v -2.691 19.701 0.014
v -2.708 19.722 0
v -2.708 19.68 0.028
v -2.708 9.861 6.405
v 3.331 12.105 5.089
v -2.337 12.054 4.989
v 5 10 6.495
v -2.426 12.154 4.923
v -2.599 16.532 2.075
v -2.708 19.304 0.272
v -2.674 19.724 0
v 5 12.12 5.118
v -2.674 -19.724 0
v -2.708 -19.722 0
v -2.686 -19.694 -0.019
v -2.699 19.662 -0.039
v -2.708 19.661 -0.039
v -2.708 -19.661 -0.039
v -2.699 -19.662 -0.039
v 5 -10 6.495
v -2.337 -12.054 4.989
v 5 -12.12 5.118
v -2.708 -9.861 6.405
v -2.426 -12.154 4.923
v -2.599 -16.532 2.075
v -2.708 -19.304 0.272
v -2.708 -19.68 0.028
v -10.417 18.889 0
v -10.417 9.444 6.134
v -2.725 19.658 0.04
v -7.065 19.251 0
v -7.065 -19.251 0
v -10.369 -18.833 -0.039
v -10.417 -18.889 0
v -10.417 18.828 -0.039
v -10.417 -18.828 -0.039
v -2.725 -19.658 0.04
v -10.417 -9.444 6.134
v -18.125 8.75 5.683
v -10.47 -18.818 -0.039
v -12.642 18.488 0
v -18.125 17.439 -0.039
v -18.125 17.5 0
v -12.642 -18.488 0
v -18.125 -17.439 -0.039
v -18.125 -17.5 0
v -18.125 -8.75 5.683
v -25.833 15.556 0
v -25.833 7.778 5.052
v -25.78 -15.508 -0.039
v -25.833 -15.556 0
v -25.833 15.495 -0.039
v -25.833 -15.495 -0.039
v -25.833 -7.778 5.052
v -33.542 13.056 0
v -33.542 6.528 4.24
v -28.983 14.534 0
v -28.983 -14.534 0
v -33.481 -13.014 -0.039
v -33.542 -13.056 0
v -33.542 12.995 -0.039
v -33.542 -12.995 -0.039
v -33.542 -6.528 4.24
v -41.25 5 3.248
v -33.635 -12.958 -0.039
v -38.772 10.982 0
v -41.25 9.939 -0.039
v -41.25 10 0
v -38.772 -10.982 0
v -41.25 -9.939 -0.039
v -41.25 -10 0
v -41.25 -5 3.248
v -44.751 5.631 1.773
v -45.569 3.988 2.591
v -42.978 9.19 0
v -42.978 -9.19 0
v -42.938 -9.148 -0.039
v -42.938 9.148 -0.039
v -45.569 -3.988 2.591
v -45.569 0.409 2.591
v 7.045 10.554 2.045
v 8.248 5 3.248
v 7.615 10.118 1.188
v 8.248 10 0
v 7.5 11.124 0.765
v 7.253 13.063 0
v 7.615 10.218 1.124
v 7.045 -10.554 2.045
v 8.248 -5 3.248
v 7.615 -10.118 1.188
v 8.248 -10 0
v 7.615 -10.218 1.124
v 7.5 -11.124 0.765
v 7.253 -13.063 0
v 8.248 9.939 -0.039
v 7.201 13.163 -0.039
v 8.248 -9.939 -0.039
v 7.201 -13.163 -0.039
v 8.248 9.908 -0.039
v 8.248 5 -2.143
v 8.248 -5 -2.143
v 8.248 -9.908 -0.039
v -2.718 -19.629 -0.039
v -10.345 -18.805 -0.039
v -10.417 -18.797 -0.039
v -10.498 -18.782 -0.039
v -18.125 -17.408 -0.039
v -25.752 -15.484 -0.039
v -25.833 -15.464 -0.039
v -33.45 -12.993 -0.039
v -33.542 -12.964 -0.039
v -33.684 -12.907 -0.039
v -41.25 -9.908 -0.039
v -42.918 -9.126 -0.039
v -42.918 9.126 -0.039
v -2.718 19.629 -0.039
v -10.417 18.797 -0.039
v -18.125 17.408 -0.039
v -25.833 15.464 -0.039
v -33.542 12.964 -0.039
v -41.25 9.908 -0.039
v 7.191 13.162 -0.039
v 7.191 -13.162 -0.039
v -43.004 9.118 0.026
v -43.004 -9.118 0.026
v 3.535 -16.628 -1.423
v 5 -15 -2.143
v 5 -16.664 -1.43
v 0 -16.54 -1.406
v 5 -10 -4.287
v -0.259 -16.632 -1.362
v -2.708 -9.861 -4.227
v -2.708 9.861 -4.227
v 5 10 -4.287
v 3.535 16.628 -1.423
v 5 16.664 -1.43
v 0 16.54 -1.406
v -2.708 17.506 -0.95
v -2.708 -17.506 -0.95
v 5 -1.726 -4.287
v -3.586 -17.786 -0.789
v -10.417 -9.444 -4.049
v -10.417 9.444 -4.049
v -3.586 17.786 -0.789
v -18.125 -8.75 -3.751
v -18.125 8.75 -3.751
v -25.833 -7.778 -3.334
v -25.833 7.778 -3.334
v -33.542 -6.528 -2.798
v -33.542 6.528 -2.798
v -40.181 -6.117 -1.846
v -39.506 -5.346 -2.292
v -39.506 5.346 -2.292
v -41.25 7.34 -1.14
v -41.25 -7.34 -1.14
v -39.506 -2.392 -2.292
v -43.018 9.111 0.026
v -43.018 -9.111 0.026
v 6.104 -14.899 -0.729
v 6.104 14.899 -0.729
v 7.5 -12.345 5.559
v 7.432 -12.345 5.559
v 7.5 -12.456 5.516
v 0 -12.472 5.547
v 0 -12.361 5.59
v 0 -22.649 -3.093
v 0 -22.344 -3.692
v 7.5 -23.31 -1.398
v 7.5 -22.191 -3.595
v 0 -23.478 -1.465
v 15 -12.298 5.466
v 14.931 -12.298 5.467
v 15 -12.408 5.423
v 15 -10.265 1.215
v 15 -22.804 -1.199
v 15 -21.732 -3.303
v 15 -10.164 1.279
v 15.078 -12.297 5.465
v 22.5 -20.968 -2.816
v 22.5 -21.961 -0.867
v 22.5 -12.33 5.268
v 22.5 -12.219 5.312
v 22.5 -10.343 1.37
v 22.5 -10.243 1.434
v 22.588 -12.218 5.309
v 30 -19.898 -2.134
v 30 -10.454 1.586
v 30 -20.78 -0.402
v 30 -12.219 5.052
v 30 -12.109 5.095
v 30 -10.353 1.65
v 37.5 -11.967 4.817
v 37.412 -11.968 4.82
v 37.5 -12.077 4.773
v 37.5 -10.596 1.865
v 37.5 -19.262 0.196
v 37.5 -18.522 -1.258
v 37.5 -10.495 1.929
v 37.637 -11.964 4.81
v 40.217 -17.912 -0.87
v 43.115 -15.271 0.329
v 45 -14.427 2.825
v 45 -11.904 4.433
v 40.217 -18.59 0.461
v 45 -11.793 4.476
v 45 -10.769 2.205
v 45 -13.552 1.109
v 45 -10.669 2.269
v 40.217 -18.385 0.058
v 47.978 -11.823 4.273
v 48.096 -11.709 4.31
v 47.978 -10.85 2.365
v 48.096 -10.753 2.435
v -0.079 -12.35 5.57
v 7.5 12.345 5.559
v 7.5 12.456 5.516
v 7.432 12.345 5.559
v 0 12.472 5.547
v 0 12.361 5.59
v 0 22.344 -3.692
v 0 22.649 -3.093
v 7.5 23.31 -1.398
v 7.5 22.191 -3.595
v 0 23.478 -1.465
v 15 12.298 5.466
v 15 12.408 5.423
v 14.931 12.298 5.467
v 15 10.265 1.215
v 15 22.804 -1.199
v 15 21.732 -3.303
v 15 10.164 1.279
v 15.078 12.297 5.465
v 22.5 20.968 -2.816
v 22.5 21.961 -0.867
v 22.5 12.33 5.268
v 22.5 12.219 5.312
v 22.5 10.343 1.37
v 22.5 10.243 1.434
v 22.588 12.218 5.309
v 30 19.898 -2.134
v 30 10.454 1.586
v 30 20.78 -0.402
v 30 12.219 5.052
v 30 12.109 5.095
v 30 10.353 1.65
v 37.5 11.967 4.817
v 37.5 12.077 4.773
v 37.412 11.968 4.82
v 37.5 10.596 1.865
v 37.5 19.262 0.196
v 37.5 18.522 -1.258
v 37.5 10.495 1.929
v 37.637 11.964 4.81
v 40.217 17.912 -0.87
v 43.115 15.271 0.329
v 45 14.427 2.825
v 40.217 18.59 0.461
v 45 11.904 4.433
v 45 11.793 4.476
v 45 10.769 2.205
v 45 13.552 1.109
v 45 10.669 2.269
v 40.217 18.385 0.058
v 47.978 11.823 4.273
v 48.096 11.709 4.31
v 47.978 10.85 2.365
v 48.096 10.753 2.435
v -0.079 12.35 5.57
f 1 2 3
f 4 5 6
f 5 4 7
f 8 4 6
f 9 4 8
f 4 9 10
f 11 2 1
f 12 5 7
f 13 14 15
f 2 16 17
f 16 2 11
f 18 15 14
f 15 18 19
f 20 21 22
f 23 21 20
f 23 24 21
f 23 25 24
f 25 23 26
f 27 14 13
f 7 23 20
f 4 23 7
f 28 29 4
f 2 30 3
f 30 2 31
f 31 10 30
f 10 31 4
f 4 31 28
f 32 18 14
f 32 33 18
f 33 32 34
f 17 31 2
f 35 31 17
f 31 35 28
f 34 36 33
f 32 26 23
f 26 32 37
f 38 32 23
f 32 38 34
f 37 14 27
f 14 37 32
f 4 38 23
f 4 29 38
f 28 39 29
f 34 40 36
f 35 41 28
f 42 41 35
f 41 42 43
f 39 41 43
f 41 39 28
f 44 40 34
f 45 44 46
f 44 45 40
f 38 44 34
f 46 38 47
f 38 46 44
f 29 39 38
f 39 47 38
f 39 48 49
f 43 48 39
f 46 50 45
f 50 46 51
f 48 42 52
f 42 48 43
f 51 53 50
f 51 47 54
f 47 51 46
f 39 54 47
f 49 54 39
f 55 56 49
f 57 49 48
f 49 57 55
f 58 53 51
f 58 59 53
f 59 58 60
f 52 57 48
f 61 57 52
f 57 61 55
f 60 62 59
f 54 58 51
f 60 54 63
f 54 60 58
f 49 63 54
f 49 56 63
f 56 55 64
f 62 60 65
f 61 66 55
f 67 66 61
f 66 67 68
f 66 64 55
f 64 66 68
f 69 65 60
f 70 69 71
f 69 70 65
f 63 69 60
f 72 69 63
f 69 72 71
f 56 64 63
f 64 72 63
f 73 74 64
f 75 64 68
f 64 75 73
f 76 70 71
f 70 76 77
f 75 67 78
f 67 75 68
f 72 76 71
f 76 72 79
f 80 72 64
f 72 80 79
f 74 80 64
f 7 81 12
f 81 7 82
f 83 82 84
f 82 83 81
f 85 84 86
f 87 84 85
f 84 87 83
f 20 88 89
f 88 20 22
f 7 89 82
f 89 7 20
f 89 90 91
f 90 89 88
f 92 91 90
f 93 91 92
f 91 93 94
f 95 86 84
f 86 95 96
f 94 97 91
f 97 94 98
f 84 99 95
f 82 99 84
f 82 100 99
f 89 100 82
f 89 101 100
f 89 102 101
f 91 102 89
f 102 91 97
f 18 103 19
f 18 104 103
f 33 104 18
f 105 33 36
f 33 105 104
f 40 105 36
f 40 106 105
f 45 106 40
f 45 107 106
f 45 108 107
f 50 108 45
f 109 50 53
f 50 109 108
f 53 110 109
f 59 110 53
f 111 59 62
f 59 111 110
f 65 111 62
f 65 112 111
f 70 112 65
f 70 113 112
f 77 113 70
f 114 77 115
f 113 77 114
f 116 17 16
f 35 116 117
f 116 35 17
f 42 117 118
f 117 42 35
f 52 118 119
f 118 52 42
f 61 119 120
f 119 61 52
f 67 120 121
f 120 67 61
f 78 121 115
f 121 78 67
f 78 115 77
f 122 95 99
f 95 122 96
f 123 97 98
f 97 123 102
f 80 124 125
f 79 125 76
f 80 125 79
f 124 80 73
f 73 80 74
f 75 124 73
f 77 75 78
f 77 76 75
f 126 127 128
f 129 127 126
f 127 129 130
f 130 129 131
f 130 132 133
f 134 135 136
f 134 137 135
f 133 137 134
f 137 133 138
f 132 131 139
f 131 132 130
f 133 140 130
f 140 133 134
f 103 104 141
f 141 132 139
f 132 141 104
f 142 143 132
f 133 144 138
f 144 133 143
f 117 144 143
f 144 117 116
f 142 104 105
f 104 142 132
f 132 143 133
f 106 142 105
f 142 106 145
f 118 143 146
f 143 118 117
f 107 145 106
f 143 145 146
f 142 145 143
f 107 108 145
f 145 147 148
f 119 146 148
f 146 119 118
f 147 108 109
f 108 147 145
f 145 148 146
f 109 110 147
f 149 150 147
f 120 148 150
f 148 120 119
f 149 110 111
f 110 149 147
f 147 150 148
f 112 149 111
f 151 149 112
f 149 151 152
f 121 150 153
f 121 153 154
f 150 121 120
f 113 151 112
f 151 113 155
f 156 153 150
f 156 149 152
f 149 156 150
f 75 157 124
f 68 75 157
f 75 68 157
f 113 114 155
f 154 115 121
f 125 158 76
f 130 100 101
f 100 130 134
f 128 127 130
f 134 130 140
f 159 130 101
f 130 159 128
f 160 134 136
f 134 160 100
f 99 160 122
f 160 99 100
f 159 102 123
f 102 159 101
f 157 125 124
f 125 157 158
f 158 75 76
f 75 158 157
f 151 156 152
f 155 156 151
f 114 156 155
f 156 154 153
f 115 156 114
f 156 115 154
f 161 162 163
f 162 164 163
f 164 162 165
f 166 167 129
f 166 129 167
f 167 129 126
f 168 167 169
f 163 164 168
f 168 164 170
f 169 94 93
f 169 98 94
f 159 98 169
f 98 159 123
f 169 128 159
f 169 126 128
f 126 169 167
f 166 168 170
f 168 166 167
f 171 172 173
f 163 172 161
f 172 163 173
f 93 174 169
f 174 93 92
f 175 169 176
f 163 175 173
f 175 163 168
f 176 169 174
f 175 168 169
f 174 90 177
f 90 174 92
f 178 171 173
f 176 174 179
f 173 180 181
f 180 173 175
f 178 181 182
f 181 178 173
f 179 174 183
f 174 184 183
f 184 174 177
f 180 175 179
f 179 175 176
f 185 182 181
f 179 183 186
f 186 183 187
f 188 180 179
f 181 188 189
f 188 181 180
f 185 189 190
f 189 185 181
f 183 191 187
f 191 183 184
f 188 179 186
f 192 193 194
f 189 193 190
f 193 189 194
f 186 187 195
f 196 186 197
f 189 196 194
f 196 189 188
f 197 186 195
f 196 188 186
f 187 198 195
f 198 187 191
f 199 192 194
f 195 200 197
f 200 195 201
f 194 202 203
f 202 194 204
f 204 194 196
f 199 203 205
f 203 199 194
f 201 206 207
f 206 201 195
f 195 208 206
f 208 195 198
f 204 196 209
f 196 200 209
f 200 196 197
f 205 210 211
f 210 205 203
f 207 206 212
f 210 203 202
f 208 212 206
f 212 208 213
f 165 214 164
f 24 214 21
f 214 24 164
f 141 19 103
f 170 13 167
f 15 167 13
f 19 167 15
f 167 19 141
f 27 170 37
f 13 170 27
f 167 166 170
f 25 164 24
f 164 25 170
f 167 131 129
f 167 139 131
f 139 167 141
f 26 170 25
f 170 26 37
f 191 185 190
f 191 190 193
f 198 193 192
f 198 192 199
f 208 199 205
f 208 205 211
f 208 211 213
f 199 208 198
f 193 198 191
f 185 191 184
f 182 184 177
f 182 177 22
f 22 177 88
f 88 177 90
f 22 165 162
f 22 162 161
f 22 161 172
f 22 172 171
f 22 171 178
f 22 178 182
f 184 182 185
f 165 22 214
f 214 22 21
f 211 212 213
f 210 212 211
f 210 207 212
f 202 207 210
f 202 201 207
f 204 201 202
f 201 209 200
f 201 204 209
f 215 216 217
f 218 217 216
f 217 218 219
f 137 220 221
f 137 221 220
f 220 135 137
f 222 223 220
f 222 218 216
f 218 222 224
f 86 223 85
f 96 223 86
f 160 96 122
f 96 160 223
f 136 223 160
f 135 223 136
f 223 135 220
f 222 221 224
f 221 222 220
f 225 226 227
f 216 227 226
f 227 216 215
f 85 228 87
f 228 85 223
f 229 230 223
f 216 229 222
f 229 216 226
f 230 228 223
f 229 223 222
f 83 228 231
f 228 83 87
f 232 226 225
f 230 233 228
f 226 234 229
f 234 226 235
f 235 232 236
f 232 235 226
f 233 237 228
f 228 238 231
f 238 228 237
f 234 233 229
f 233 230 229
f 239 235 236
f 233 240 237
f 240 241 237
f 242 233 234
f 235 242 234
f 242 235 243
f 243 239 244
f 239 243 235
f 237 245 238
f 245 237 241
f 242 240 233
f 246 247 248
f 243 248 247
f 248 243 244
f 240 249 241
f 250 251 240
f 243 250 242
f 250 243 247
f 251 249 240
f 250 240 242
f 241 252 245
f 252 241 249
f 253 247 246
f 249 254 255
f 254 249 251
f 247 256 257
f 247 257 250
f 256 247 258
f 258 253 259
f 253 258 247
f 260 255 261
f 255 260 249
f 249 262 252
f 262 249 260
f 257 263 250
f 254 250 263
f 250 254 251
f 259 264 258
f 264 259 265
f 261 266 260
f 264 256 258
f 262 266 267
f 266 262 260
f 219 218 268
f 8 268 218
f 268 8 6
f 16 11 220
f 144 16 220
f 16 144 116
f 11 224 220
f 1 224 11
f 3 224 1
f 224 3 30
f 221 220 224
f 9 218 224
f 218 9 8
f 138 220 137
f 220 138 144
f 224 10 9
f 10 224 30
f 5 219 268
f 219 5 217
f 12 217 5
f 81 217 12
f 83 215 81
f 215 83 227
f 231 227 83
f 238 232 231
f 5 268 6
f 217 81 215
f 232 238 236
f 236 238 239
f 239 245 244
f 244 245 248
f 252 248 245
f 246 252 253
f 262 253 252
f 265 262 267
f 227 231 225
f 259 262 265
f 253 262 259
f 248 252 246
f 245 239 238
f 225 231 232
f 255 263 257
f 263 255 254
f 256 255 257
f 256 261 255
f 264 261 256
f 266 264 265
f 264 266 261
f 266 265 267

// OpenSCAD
// file: util.scad
fn1 = 32;
fn2 = 16;

module util_half_sphere(radius, fn=fn1) {
    difference() {
        sphere(radius, $fn=fn);
        translate([0,0,-(radius+radius/19)])
            cube(2*radius+radius/10, center=true);
    }
}

function gcd(a,b) = a == b ? a : a > b ? gcd(a-b, b) : gcd(a, b-a);

module util_saucer(length, width, height, fn=fn1) {
    rad = gcd(length,gcd(width,height));
    //rad = 10;
    scale([length/(2*rad), width/(2*rad), height/rad])
        util_half_sphere(rad, fn);
}

module util_half_cylinder(length, radius, inner_fn=fn2, outer_fn=fn1) {
    maxval = max(length, 2*radius);
    intersection() {
        difference() {
            rotate([0,90,0])
                translate([0,0,-(length/2 + length/20)])
                    cylinder(length+length/10, radius, radius, $fn=inner_fn);
            
            translate([0,0,(maxval/2 + maxval/19)])
                cube(maxval+maxval/10, center=true);
        }
        
        translate([0,0,-(radius+radius/20)])
            cylinder(radius + radius/10, length/2, length/2, $fn=outer_fn);
    }
}

module util_body(length, width, height, upper_height, fn=fn1) {
    rad = gcd(length, gcd(width, upper_height));
    
    scale(.995) scale([length/(2*rad), width/(2*rad), 1])
        util_half_cylinder(2*rad, height, outer_fn=fn);
}

module util_graded_cylinder(height, radius_start, radius_end, grades=1, fn=fn1) {
    height_grade = height / grades;
    radius_grade = (radius_start - radius_end) / (grades * grades);
    for (i = [0 : 1 : grades]) {
        translate([0,0,i*height_grade])
            cylinder(height_grade, 
                     radius_start - i*radius_grade * i,
                     radius_start - (i+1) * radius_grade * (i+1),
                     $fn = fn);
    }
}

module util_nacelle(length, width, height, curved=false, up=true, front_bulge=false) {
    rad = min(width, height/2);
    grads = curved ? 6 : 1;
    scale_factor = front_bulge ? 1.1 : 1;
    direction = up ? -1 : 1;
    difference() {
        scale([1, width/ (2*rad), height/rad])
            difference() {
                union() {
                    rotate([0,-90,0])
                        rotate(30)
                            util_graded_cylinder(length-rad, rad, rad/2, grads, 6);
                    scale(scale_factor) 
                        rotate([0,90,0]) rotate(90) sphere(rad, $fn=6);
                }
                
                translate([-length/2, 0, direction * (height/2 + height/19)])
                    cube([length+length, width+width, height+height/10], center=true);
            }
        
        translate([-length-(curved?length/3:0), 0, -length/3])
            rotate([0,-45,0])
                cube(length, center=true);
    }
}

module util_mirrored(v) {
    children();
    mirror(v) children();
}

module util_ring(outer, inner, height) {
    difference() {
        translate([0,0,-height/2])
            cylinder(height, outer, outer);
        translate([0,0,-(height/2 + height/19)])
            cylinder(height+height/10, inner, inner);
    }
}

module util_star(radius, thick, num, half=false) {
    angle = 360/num;
    offset = half? angle/2 : 0;
    for (i = [0: 1: num]) {
        rotate(i* angle + offset)
            translate([radius/2,0,0])
                cube([radius, thick, thick], center=true);
    }
}

module util_ring_star(radius, thick, num, inner, half=false) {
    outer=inner+thick;
    avg = (inner + outer)/2;
    union() {
        difference() {
            util_star(radius, thick, num, half);
            cylinder(2*thick, outer, outer, $fn=num, center=true);
        }
        util_ring(outer, inner, thick);
    }
}

module util_hangar_disk(height, lower, upper, num, fn=fn1) {
    difference() {
            cylinder(height, lower, upper, $fn=fn, center=true);
        difference() {
            scale([1,1,22])
                util_star(1.1*upper, height/20, num, half=true);
            scale(.95)
                cylinder(height, lower, upper, $fn=fn, center=true);
        }
    }
}

module util_hangar_form(length, width, height, num, inner=0) {
    l = 0.6* max(length, width);
    h = 2.5* height;
    thick = h/20;
    inner = inner == 0 ? l/3 : inner;
    difference() {
        children();
        scale([1,1,h/thick]) 
            util_ring_star(l, thick, num, inner, half=true);
    }
    scale(.95) children();
}

module util_nacelle_bar(span, height, width, thickness) {
    rad = (span*span/(8*height) + height/2);
    outer = rad + thickness/2;
    inner = rad - thickness/2;
    difference(){
        translate([0,0,outer])
            rotate([0,90,0])
                util_ring(outer, inner, width);
    
        translate([0,0,1.1*outer+height])
            cube(2.2*outer, center=true);
    }
}
// main file
use <util.scad>;

module corvette() {
    difference() {
        translate([5,0,0]) {
            util_nacelle(50,40,7.5,curved=true);
            scale([1,1,.66])
            util_nacelle(50,40,7.5,curved=true,up=false);
        }

//        translate([24.5,0,0])
//            rotate([0,-15,0])
//                cube(40,center=true);
    }

    util_mirrored([0,1,0])
        translate([-0,-10,4])
            rotate([-63,0,0])
                rotate(180)
                    translate([0,0,-1.5])
                    util_nacelle(50,5,15,curved=true,up=false);
}

corvette();
